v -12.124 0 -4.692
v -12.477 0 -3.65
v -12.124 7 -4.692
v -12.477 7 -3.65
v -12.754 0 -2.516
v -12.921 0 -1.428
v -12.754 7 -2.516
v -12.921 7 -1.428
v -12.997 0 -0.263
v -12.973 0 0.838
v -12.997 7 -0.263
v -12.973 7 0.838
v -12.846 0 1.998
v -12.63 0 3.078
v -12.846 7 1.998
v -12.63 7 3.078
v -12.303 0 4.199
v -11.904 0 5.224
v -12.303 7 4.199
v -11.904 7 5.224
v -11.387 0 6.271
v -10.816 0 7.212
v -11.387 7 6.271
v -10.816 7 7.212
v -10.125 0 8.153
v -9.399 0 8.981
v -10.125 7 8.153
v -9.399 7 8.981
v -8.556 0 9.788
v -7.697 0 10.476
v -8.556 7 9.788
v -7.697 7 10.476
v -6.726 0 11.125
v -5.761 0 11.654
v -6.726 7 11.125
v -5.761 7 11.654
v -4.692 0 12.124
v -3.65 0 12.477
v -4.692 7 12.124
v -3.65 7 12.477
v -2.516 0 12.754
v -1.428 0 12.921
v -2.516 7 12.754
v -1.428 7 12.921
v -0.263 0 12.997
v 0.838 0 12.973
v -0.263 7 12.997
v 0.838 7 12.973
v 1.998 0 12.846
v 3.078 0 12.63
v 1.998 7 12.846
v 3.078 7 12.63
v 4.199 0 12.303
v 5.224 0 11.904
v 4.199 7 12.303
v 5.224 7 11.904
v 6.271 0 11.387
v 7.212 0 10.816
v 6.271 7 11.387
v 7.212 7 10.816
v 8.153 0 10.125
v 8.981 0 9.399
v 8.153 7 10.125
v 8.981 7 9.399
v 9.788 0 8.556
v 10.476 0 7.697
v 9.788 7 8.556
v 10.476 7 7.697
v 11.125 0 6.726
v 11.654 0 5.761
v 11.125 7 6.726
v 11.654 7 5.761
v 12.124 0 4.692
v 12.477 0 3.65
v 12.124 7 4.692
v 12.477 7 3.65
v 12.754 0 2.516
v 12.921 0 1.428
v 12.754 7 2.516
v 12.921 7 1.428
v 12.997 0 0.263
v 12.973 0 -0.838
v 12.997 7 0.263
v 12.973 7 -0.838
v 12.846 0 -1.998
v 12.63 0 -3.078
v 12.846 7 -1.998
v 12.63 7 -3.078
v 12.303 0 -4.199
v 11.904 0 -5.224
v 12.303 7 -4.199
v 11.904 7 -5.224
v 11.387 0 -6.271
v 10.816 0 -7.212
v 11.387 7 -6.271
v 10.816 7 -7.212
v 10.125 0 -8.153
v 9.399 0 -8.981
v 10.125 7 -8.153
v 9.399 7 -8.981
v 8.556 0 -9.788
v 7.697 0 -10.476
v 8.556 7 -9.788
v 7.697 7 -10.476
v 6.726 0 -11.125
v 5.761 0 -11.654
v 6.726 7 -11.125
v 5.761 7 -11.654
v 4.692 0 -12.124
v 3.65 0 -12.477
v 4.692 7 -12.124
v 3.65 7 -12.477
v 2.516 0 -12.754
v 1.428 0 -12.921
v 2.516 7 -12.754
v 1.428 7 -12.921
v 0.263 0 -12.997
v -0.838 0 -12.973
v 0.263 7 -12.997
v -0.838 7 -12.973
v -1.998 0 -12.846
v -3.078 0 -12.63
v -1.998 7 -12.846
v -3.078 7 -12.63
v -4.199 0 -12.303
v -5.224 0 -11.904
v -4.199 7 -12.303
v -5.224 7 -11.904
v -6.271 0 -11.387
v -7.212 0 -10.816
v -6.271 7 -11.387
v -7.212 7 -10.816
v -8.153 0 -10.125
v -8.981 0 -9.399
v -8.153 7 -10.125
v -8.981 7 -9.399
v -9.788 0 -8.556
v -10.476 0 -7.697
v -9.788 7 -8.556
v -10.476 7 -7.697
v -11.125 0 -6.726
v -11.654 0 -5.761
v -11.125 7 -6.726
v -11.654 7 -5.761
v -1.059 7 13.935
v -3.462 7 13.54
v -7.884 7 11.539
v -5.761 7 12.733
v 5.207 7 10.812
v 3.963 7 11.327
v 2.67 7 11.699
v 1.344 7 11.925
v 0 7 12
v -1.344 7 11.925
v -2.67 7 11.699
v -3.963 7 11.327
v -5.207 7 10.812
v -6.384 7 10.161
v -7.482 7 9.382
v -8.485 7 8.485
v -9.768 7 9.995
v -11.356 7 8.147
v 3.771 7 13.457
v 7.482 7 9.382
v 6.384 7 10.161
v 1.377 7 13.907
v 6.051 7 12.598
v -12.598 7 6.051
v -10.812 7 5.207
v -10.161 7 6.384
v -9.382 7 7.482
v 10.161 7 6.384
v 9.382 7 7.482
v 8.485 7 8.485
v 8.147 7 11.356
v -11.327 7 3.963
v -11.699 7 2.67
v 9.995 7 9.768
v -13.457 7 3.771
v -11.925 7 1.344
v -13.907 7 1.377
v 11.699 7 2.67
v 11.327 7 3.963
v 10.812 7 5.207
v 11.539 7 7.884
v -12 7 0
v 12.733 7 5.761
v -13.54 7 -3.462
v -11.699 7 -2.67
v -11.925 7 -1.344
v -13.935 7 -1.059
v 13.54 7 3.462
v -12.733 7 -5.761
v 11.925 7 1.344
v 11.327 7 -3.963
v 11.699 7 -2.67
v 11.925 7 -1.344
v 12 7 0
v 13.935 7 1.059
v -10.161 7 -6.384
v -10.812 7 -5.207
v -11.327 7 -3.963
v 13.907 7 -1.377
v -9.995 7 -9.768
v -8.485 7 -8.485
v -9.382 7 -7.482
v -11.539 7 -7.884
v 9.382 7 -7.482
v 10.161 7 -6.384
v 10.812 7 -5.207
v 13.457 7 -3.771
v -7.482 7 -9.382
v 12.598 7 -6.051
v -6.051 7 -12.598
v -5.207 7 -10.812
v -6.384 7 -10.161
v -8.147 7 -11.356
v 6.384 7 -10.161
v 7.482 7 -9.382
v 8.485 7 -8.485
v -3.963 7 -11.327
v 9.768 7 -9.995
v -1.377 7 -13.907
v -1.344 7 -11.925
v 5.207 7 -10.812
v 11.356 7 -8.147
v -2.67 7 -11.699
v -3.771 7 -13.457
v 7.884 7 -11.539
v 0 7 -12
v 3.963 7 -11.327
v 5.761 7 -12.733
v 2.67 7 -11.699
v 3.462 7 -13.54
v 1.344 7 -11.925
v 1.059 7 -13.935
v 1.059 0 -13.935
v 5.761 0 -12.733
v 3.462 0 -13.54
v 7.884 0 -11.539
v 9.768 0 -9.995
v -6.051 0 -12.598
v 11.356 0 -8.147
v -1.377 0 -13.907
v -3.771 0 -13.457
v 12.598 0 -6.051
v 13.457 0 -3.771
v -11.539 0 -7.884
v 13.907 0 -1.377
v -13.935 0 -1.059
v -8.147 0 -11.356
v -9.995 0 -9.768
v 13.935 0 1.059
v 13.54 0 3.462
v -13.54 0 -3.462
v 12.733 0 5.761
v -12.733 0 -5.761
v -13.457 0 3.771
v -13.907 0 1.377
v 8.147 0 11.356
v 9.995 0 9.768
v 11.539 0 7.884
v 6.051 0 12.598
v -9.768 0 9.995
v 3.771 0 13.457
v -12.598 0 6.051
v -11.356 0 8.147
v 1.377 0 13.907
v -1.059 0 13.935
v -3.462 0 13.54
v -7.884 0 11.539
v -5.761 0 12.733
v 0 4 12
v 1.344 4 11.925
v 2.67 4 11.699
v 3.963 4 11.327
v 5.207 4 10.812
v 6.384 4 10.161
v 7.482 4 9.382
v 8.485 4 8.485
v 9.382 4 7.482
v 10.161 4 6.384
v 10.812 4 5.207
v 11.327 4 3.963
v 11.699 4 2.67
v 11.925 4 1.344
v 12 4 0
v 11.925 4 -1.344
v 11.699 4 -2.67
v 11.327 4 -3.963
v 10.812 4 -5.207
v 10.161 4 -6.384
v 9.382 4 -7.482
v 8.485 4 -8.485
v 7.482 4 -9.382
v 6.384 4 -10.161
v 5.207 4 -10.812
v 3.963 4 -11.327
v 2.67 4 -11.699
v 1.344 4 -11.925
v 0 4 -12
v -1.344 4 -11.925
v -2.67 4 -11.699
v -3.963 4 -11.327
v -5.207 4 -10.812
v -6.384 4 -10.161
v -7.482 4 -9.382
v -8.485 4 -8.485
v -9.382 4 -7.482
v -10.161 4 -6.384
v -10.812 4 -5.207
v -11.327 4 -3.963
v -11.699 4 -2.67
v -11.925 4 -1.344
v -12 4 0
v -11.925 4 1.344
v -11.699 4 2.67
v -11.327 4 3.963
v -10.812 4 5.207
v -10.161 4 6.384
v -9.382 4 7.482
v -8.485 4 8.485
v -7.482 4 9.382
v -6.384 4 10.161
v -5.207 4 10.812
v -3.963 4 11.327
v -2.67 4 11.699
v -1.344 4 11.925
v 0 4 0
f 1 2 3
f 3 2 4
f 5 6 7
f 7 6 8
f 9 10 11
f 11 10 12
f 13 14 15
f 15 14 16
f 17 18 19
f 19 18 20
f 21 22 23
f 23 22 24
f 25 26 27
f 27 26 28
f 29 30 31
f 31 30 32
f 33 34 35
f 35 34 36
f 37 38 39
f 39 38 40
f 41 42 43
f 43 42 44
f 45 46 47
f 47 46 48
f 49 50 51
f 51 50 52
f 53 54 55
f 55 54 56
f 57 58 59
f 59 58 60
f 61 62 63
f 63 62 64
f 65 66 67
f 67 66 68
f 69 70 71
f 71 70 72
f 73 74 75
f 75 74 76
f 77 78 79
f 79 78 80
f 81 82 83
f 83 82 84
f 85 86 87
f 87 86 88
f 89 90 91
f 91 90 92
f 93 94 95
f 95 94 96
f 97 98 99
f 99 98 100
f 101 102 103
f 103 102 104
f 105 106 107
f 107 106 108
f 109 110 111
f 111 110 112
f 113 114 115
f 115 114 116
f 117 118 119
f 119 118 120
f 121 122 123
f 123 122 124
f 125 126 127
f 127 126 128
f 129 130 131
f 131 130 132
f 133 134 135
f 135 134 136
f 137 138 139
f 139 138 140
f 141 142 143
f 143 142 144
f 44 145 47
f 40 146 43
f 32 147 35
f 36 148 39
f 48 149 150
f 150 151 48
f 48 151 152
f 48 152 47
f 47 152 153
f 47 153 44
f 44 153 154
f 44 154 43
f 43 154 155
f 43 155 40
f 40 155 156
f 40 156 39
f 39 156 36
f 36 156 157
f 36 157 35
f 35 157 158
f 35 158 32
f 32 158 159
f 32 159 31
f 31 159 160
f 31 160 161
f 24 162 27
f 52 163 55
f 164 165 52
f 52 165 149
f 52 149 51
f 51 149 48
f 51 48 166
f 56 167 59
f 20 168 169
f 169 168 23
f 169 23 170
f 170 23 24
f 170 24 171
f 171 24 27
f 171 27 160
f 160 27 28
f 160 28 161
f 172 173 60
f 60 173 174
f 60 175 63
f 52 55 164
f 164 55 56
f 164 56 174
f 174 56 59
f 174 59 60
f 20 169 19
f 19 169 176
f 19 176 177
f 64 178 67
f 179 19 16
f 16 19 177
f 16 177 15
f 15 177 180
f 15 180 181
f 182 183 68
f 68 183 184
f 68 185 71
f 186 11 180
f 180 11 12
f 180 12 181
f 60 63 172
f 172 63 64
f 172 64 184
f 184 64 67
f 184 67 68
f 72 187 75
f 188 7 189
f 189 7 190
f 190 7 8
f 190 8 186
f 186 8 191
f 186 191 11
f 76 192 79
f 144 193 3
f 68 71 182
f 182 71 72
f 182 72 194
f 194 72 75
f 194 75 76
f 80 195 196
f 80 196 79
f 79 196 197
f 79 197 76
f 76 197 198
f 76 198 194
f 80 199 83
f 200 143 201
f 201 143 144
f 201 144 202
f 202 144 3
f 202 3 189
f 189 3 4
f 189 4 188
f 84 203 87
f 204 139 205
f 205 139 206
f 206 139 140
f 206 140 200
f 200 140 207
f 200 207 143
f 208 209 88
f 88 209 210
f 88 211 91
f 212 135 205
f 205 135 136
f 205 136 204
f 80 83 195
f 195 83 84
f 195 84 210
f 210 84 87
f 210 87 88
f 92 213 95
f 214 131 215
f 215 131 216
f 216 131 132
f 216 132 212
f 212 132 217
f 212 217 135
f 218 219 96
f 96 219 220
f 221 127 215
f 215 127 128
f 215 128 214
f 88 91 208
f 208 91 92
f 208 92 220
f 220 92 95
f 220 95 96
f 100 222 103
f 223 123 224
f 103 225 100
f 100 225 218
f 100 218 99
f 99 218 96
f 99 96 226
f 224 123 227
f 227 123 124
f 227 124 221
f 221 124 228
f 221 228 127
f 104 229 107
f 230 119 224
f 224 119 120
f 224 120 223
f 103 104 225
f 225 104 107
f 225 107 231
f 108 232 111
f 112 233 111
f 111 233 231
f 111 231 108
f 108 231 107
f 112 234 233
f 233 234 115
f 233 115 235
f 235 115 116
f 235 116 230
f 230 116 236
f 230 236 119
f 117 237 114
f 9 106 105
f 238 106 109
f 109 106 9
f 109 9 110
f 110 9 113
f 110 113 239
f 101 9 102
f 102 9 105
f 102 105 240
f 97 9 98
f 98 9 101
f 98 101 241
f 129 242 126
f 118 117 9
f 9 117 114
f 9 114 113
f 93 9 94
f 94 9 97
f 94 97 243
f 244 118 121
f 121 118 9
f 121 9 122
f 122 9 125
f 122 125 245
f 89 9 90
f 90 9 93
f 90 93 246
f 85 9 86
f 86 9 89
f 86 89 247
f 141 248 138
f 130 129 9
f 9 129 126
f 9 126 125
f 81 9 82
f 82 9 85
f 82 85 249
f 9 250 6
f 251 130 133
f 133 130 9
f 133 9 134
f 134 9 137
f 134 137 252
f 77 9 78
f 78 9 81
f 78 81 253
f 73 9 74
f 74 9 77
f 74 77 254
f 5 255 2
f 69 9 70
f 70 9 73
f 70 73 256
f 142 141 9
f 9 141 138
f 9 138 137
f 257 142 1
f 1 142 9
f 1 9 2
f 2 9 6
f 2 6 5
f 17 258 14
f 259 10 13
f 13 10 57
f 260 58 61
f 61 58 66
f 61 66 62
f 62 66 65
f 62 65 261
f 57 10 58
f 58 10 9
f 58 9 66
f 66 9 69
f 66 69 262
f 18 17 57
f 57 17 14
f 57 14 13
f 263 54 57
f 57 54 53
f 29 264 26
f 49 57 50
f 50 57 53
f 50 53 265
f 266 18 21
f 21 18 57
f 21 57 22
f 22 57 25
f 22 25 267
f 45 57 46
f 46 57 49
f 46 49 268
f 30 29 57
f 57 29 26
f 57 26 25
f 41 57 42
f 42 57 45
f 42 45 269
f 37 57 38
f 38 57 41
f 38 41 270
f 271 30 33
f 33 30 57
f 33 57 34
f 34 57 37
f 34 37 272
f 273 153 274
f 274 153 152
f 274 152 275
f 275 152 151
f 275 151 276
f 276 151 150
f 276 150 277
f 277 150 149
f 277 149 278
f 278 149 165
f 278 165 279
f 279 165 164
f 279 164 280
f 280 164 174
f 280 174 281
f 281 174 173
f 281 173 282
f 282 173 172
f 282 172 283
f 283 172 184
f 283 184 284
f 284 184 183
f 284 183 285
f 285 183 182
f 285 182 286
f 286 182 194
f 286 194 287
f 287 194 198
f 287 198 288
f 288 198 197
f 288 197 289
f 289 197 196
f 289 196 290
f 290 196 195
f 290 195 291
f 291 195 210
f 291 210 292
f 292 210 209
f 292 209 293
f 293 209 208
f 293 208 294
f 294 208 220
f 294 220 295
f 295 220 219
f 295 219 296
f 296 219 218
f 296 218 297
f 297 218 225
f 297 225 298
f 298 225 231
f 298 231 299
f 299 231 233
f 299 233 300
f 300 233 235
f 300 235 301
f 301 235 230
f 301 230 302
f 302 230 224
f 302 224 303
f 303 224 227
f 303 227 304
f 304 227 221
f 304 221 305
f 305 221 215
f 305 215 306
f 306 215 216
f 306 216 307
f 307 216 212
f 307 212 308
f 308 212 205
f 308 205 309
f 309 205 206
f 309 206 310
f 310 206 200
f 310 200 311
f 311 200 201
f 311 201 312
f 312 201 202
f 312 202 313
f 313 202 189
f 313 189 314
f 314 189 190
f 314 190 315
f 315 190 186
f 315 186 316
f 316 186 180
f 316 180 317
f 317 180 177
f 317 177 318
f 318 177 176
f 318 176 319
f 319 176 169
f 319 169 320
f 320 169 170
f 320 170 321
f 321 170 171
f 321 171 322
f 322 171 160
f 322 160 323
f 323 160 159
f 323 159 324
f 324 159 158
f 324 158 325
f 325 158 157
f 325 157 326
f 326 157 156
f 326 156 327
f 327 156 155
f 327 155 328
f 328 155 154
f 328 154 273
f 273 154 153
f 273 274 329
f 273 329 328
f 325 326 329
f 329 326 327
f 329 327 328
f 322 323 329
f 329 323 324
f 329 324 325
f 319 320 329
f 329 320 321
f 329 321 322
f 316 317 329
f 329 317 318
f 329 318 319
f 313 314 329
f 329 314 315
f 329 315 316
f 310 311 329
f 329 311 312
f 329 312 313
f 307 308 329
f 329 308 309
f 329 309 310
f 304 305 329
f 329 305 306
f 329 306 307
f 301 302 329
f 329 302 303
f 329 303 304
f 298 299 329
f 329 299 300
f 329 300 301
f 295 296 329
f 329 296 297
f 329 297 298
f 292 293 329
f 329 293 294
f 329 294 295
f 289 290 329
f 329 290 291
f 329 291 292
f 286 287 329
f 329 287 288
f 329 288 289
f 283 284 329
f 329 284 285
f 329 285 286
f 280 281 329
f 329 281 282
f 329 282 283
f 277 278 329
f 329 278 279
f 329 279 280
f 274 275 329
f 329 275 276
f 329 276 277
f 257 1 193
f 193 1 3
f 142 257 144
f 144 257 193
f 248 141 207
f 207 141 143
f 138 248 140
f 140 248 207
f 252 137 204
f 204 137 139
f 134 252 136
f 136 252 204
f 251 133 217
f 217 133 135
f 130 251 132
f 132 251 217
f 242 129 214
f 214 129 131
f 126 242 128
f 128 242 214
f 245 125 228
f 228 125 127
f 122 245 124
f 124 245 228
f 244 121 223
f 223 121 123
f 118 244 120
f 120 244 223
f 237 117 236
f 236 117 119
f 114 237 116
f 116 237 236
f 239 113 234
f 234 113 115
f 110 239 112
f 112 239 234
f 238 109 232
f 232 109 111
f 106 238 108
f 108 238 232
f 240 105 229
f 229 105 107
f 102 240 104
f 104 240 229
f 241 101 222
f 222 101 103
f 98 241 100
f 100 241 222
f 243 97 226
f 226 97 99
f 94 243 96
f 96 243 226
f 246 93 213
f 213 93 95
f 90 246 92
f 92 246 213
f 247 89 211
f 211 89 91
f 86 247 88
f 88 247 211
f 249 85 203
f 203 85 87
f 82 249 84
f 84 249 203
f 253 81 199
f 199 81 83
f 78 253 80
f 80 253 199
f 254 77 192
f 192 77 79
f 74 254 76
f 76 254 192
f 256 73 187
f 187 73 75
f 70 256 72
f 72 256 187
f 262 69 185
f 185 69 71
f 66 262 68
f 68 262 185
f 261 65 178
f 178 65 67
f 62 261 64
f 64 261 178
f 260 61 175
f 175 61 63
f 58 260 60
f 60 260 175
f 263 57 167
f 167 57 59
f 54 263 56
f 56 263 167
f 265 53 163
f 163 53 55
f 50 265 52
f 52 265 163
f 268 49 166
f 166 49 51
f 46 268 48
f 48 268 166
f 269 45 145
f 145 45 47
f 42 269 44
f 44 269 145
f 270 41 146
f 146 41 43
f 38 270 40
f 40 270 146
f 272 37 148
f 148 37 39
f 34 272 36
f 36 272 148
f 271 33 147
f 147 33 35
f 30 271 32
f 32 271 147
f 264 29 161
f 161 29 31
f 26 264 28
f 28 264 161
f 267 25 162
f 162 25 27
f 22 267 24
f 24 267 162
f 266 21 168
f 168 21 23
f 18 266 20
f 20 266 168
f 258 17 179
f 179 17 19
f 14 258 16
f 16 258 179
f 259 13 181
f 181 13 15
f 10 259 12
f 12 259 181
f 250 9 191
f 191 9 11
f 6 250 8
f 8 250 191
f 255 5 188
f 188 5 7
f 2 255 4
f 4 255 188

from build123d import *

# Parameters (mm, degrees)
SKETCH_1_R          = 13
EXTRUDE_1_DEPTH     = 7
SKETCH_2_R          = 12
CUT_EXTRUDE_1_DEPTH = 3
EXTRUDE_2_DEPTH     = 7


with BuildPart() as part:
    # 草图1 → 凸台-拉伸1 (new body)
    with BuildSketch(Plane(origin=(0, 0, 0), x_dir=(1, 0, 0), z_dir=(0, 1, 0))):
        with Locations(Location((0, 0, 0), (0, 0, 270))):
            Circle(SKETCH_1_R)
    extrude(amount=EXTRUDE_1_DEPTH)

    # 草图2 → 切除-拉伸1 (cut)
    with BuildSketch(Plane(origin=(0, 7, 0), x_dir=(1, 0, 0), z_dir=(0, 1, 0))):
        with Locations(Location((0, 0, 0), (0, 0, 270))):
            Circle(SKETCH_2_R)
    extrude(amount=-CUT_EXTRUDE_1_DEPTH, mode=Mode.SUBTRACT)

    # 草图3 → 凸台-拉伸2 (add, through all)
    with BuildSketch(Plane(origin=(0, 7, 0), x_dir=(1, 0, 0), z_dir=(0, 1, 0))):
        Polygon((-12.123665589, 4.692199131), (-11.044603538, 4.692199131), (-11.653830585, 5.760922904), (-12.732892635, 5.760922904), align=None)
        Polygon((-11.124688039, 6.726166519), (-10.062019365, 6.53878936), (-10.476408948, 7.697067984), (-11.539077622, 7.884445143), align=None)
        Polygon((-9.787692472, 8.555762741), (-8.773705825, 8.186701784), (-8.980666927, 9.399341549), (-9.994653573, 9.768402506), align=None)
        Polygon((-8.153302822, 10.125396442), (-7.218807673, 9.585865416), (-7.212051886, 10.816020876), (-8.146547034, 11.355551902), align=None)
        Polygon((-6.271179191, 11.387375095), (-5.444569703, 10.693767379), (-5.224302297, 11.904060883), (-6.050911785, 12.597668599), align=None)
        Polygon((-4.198508954, 12.303354118), (-3.504901238, 11.47674463), (-3.077814927, 12.630402023), (-3.771422644, 13.457011511), align=None)
        Polygon((-1.998269147, 12.845501953), (-1.458738122, 11.911006804), (-0.837809708, 12.97297479), (-1.377340734, 13.907469938), align=None)
        Polygon((0.262687056, 12.99734571), (0.631748014, 11.983359064), (1.427651935, 12.921370282), (1.058590978, 13.935356928), align=None)
        Polygon((2.515661647, 12.754271695), (2.703038805, 11.691603022), (3.649735097, 12.477156476), (3.462357938, 13.53982515), align=None)
        Polygon((4.692199131, 12.123665589), (4.692199131, 11.044603538), (5.760922904, 11.653830585), (5.760922904, 12.732892635), align=None)
        Polygon((6.726166519, 11.124688039), (6.53878936, 10.062019365), (7.697067984, 10.476408948), (7.884445143, 11.539077622), align=None)
        Polygon((8.555762741, 9.787692472), (8.186701784, 8.773705825), (9.399341549, 8.980666927), (9.768402506, 9.994653573), align=None)
        Polygon((10.125396442, 8.153302822), (9.585865416, 7.218807673), (10.816020876, 7.212051886), (11.355551902, 8.146547034), align=None)
        Polygon((11.387375095, 6.271179191), (10.693767379, 5.444569703), (11.904060883, 5.224302297), (12.597668599, 6.050911785), align=None)
        Polygon((12.303354118, 4.198508954), (11.47674463, 3.504901238), (12.630402023, 3.077814927), (13.457011511, 3.771422644), align=None)
        Polygon((12.845501953, 1.998269147), (11.911006804, 1.458738122), (12.97297479, 0.837809708), (13.907469938, 1.377340734), align=None)
        Polygon((12.99734571, -0.262687056), (11.983359064, -0.631748014), (12.921370282, -1.427651935), (13.935356928, -1.058590978), align=None)
        Polygon((12.754271695, -2.515661647), (11.691603022, -2.703038805), (12.477156476, -3.649735097), (13.53982515, -3.462357938), align=None)
        Polygon((12.123665589, -4.692199131), (11.044603538, -4.692199131), (11.653830585, -5.760922904), (12.732892635, -5.760922904), align=None)
        Polygon((11.124688039, -6.726166519), (10.062019365, -6.53878936), (10.476408948, -7.697067984), (11.539077622, -7.884445143), align=None)
        Polygon((9.787692472, -8.555762741), (8.773705825, -8.186701784), (8.980666927, -9.399341549), (9.994653573, -9.768402506), align=None)
        Polygon((8.153302822, -10.125396442), (7.218807673, -9.585865416), (7.212051886, -10.816020876), (8.146547034, -11.355551902), align=None)
        Polygon((6.271179191, -11.387375095), (5.444569703, -10.693767379), (5.224302297, -11.904060883), (6.050911785, -12.597668599), align=None)
        Polygon((4.198508954, -12.303354118), (3.504901238, -11.47674463), (3.077814927, -12.630402023), (3.771422644, -13.457011511), align=None)
        Polygon((1.998269147, -12.845501953), (1.458738122, -11.911006804), (0.837809708, -12.97297479), (1.377340734, -13.907469938), align=None)
        Polygon((-0.262687056, -12.99734571), (-0.631748014, -11.983359064), (-1.427651935, -12.921370282), (-1.058590978, -13.935356928), align=None)
        Polygon((-2.515661647, -12.754271695), (-2.703038805, -11.691603022), (-3.649735097, -12.477156476), (-3.462357938, -13.53982515), align=None)
        Polygon((-4.692199131, -12.123665589), (-4.692199131, -11.044603538), (-5.760922904, -11.653830585), (-5.760922904, -12.732892635), align=None)
        Polygon((-6.726166519, -11.124688039), (-6.53878936, -10.062019365), (-7.697067984, -10.476408948), (-7.884445143, -11.539077622), align=None)
        Polygon((-8.555762741, -9.787692472), (-8.186701784, -8.773705825), (-9.399341549, -8.980666927), (-9.768402506, -9.994653573), align=None)
        Polygon((-10.125396442, -8.153302822), (-9.585865416, -7.218807673), (-10.816020876, -7.212051886), (-11.355551902, -8.146547034), align=None)
        Polygon((-11.387375095, -6.271179191), (-10.693767379, -5.444569703), (-11.904060883, -5.224302297), (-12.597668599, -6.050911785), align=None)
        Polygon((-12.303354118, -4.198508954), (-11.47674463, -3.504901238), (-12.630402023, -3.077814927), (-13.457011511, -3.771422644), align=None)
        Polygon((-12.845501953, -1.998269147), (-11.911006804, -1.458738122), (-12.97297479, -0.837809708), (-13.907469938, -1.377340734), align=None)
        Polygon((-12.99734571, 0.262687056), (-11.983359064, 0.631748014), (-12.921370282, 1.427651935), (-13.935356928, 1.058590978), align=None)
        Polygon((-12.754271695, 2.515661647), (-11.691603022, 2.703038805), (-12.477156476, 3.649735097), (-13.53982515, 3.462357938), align=None)
    extrude(amount=-EXTRUDE_2_DEPTH)


solid = part.part
